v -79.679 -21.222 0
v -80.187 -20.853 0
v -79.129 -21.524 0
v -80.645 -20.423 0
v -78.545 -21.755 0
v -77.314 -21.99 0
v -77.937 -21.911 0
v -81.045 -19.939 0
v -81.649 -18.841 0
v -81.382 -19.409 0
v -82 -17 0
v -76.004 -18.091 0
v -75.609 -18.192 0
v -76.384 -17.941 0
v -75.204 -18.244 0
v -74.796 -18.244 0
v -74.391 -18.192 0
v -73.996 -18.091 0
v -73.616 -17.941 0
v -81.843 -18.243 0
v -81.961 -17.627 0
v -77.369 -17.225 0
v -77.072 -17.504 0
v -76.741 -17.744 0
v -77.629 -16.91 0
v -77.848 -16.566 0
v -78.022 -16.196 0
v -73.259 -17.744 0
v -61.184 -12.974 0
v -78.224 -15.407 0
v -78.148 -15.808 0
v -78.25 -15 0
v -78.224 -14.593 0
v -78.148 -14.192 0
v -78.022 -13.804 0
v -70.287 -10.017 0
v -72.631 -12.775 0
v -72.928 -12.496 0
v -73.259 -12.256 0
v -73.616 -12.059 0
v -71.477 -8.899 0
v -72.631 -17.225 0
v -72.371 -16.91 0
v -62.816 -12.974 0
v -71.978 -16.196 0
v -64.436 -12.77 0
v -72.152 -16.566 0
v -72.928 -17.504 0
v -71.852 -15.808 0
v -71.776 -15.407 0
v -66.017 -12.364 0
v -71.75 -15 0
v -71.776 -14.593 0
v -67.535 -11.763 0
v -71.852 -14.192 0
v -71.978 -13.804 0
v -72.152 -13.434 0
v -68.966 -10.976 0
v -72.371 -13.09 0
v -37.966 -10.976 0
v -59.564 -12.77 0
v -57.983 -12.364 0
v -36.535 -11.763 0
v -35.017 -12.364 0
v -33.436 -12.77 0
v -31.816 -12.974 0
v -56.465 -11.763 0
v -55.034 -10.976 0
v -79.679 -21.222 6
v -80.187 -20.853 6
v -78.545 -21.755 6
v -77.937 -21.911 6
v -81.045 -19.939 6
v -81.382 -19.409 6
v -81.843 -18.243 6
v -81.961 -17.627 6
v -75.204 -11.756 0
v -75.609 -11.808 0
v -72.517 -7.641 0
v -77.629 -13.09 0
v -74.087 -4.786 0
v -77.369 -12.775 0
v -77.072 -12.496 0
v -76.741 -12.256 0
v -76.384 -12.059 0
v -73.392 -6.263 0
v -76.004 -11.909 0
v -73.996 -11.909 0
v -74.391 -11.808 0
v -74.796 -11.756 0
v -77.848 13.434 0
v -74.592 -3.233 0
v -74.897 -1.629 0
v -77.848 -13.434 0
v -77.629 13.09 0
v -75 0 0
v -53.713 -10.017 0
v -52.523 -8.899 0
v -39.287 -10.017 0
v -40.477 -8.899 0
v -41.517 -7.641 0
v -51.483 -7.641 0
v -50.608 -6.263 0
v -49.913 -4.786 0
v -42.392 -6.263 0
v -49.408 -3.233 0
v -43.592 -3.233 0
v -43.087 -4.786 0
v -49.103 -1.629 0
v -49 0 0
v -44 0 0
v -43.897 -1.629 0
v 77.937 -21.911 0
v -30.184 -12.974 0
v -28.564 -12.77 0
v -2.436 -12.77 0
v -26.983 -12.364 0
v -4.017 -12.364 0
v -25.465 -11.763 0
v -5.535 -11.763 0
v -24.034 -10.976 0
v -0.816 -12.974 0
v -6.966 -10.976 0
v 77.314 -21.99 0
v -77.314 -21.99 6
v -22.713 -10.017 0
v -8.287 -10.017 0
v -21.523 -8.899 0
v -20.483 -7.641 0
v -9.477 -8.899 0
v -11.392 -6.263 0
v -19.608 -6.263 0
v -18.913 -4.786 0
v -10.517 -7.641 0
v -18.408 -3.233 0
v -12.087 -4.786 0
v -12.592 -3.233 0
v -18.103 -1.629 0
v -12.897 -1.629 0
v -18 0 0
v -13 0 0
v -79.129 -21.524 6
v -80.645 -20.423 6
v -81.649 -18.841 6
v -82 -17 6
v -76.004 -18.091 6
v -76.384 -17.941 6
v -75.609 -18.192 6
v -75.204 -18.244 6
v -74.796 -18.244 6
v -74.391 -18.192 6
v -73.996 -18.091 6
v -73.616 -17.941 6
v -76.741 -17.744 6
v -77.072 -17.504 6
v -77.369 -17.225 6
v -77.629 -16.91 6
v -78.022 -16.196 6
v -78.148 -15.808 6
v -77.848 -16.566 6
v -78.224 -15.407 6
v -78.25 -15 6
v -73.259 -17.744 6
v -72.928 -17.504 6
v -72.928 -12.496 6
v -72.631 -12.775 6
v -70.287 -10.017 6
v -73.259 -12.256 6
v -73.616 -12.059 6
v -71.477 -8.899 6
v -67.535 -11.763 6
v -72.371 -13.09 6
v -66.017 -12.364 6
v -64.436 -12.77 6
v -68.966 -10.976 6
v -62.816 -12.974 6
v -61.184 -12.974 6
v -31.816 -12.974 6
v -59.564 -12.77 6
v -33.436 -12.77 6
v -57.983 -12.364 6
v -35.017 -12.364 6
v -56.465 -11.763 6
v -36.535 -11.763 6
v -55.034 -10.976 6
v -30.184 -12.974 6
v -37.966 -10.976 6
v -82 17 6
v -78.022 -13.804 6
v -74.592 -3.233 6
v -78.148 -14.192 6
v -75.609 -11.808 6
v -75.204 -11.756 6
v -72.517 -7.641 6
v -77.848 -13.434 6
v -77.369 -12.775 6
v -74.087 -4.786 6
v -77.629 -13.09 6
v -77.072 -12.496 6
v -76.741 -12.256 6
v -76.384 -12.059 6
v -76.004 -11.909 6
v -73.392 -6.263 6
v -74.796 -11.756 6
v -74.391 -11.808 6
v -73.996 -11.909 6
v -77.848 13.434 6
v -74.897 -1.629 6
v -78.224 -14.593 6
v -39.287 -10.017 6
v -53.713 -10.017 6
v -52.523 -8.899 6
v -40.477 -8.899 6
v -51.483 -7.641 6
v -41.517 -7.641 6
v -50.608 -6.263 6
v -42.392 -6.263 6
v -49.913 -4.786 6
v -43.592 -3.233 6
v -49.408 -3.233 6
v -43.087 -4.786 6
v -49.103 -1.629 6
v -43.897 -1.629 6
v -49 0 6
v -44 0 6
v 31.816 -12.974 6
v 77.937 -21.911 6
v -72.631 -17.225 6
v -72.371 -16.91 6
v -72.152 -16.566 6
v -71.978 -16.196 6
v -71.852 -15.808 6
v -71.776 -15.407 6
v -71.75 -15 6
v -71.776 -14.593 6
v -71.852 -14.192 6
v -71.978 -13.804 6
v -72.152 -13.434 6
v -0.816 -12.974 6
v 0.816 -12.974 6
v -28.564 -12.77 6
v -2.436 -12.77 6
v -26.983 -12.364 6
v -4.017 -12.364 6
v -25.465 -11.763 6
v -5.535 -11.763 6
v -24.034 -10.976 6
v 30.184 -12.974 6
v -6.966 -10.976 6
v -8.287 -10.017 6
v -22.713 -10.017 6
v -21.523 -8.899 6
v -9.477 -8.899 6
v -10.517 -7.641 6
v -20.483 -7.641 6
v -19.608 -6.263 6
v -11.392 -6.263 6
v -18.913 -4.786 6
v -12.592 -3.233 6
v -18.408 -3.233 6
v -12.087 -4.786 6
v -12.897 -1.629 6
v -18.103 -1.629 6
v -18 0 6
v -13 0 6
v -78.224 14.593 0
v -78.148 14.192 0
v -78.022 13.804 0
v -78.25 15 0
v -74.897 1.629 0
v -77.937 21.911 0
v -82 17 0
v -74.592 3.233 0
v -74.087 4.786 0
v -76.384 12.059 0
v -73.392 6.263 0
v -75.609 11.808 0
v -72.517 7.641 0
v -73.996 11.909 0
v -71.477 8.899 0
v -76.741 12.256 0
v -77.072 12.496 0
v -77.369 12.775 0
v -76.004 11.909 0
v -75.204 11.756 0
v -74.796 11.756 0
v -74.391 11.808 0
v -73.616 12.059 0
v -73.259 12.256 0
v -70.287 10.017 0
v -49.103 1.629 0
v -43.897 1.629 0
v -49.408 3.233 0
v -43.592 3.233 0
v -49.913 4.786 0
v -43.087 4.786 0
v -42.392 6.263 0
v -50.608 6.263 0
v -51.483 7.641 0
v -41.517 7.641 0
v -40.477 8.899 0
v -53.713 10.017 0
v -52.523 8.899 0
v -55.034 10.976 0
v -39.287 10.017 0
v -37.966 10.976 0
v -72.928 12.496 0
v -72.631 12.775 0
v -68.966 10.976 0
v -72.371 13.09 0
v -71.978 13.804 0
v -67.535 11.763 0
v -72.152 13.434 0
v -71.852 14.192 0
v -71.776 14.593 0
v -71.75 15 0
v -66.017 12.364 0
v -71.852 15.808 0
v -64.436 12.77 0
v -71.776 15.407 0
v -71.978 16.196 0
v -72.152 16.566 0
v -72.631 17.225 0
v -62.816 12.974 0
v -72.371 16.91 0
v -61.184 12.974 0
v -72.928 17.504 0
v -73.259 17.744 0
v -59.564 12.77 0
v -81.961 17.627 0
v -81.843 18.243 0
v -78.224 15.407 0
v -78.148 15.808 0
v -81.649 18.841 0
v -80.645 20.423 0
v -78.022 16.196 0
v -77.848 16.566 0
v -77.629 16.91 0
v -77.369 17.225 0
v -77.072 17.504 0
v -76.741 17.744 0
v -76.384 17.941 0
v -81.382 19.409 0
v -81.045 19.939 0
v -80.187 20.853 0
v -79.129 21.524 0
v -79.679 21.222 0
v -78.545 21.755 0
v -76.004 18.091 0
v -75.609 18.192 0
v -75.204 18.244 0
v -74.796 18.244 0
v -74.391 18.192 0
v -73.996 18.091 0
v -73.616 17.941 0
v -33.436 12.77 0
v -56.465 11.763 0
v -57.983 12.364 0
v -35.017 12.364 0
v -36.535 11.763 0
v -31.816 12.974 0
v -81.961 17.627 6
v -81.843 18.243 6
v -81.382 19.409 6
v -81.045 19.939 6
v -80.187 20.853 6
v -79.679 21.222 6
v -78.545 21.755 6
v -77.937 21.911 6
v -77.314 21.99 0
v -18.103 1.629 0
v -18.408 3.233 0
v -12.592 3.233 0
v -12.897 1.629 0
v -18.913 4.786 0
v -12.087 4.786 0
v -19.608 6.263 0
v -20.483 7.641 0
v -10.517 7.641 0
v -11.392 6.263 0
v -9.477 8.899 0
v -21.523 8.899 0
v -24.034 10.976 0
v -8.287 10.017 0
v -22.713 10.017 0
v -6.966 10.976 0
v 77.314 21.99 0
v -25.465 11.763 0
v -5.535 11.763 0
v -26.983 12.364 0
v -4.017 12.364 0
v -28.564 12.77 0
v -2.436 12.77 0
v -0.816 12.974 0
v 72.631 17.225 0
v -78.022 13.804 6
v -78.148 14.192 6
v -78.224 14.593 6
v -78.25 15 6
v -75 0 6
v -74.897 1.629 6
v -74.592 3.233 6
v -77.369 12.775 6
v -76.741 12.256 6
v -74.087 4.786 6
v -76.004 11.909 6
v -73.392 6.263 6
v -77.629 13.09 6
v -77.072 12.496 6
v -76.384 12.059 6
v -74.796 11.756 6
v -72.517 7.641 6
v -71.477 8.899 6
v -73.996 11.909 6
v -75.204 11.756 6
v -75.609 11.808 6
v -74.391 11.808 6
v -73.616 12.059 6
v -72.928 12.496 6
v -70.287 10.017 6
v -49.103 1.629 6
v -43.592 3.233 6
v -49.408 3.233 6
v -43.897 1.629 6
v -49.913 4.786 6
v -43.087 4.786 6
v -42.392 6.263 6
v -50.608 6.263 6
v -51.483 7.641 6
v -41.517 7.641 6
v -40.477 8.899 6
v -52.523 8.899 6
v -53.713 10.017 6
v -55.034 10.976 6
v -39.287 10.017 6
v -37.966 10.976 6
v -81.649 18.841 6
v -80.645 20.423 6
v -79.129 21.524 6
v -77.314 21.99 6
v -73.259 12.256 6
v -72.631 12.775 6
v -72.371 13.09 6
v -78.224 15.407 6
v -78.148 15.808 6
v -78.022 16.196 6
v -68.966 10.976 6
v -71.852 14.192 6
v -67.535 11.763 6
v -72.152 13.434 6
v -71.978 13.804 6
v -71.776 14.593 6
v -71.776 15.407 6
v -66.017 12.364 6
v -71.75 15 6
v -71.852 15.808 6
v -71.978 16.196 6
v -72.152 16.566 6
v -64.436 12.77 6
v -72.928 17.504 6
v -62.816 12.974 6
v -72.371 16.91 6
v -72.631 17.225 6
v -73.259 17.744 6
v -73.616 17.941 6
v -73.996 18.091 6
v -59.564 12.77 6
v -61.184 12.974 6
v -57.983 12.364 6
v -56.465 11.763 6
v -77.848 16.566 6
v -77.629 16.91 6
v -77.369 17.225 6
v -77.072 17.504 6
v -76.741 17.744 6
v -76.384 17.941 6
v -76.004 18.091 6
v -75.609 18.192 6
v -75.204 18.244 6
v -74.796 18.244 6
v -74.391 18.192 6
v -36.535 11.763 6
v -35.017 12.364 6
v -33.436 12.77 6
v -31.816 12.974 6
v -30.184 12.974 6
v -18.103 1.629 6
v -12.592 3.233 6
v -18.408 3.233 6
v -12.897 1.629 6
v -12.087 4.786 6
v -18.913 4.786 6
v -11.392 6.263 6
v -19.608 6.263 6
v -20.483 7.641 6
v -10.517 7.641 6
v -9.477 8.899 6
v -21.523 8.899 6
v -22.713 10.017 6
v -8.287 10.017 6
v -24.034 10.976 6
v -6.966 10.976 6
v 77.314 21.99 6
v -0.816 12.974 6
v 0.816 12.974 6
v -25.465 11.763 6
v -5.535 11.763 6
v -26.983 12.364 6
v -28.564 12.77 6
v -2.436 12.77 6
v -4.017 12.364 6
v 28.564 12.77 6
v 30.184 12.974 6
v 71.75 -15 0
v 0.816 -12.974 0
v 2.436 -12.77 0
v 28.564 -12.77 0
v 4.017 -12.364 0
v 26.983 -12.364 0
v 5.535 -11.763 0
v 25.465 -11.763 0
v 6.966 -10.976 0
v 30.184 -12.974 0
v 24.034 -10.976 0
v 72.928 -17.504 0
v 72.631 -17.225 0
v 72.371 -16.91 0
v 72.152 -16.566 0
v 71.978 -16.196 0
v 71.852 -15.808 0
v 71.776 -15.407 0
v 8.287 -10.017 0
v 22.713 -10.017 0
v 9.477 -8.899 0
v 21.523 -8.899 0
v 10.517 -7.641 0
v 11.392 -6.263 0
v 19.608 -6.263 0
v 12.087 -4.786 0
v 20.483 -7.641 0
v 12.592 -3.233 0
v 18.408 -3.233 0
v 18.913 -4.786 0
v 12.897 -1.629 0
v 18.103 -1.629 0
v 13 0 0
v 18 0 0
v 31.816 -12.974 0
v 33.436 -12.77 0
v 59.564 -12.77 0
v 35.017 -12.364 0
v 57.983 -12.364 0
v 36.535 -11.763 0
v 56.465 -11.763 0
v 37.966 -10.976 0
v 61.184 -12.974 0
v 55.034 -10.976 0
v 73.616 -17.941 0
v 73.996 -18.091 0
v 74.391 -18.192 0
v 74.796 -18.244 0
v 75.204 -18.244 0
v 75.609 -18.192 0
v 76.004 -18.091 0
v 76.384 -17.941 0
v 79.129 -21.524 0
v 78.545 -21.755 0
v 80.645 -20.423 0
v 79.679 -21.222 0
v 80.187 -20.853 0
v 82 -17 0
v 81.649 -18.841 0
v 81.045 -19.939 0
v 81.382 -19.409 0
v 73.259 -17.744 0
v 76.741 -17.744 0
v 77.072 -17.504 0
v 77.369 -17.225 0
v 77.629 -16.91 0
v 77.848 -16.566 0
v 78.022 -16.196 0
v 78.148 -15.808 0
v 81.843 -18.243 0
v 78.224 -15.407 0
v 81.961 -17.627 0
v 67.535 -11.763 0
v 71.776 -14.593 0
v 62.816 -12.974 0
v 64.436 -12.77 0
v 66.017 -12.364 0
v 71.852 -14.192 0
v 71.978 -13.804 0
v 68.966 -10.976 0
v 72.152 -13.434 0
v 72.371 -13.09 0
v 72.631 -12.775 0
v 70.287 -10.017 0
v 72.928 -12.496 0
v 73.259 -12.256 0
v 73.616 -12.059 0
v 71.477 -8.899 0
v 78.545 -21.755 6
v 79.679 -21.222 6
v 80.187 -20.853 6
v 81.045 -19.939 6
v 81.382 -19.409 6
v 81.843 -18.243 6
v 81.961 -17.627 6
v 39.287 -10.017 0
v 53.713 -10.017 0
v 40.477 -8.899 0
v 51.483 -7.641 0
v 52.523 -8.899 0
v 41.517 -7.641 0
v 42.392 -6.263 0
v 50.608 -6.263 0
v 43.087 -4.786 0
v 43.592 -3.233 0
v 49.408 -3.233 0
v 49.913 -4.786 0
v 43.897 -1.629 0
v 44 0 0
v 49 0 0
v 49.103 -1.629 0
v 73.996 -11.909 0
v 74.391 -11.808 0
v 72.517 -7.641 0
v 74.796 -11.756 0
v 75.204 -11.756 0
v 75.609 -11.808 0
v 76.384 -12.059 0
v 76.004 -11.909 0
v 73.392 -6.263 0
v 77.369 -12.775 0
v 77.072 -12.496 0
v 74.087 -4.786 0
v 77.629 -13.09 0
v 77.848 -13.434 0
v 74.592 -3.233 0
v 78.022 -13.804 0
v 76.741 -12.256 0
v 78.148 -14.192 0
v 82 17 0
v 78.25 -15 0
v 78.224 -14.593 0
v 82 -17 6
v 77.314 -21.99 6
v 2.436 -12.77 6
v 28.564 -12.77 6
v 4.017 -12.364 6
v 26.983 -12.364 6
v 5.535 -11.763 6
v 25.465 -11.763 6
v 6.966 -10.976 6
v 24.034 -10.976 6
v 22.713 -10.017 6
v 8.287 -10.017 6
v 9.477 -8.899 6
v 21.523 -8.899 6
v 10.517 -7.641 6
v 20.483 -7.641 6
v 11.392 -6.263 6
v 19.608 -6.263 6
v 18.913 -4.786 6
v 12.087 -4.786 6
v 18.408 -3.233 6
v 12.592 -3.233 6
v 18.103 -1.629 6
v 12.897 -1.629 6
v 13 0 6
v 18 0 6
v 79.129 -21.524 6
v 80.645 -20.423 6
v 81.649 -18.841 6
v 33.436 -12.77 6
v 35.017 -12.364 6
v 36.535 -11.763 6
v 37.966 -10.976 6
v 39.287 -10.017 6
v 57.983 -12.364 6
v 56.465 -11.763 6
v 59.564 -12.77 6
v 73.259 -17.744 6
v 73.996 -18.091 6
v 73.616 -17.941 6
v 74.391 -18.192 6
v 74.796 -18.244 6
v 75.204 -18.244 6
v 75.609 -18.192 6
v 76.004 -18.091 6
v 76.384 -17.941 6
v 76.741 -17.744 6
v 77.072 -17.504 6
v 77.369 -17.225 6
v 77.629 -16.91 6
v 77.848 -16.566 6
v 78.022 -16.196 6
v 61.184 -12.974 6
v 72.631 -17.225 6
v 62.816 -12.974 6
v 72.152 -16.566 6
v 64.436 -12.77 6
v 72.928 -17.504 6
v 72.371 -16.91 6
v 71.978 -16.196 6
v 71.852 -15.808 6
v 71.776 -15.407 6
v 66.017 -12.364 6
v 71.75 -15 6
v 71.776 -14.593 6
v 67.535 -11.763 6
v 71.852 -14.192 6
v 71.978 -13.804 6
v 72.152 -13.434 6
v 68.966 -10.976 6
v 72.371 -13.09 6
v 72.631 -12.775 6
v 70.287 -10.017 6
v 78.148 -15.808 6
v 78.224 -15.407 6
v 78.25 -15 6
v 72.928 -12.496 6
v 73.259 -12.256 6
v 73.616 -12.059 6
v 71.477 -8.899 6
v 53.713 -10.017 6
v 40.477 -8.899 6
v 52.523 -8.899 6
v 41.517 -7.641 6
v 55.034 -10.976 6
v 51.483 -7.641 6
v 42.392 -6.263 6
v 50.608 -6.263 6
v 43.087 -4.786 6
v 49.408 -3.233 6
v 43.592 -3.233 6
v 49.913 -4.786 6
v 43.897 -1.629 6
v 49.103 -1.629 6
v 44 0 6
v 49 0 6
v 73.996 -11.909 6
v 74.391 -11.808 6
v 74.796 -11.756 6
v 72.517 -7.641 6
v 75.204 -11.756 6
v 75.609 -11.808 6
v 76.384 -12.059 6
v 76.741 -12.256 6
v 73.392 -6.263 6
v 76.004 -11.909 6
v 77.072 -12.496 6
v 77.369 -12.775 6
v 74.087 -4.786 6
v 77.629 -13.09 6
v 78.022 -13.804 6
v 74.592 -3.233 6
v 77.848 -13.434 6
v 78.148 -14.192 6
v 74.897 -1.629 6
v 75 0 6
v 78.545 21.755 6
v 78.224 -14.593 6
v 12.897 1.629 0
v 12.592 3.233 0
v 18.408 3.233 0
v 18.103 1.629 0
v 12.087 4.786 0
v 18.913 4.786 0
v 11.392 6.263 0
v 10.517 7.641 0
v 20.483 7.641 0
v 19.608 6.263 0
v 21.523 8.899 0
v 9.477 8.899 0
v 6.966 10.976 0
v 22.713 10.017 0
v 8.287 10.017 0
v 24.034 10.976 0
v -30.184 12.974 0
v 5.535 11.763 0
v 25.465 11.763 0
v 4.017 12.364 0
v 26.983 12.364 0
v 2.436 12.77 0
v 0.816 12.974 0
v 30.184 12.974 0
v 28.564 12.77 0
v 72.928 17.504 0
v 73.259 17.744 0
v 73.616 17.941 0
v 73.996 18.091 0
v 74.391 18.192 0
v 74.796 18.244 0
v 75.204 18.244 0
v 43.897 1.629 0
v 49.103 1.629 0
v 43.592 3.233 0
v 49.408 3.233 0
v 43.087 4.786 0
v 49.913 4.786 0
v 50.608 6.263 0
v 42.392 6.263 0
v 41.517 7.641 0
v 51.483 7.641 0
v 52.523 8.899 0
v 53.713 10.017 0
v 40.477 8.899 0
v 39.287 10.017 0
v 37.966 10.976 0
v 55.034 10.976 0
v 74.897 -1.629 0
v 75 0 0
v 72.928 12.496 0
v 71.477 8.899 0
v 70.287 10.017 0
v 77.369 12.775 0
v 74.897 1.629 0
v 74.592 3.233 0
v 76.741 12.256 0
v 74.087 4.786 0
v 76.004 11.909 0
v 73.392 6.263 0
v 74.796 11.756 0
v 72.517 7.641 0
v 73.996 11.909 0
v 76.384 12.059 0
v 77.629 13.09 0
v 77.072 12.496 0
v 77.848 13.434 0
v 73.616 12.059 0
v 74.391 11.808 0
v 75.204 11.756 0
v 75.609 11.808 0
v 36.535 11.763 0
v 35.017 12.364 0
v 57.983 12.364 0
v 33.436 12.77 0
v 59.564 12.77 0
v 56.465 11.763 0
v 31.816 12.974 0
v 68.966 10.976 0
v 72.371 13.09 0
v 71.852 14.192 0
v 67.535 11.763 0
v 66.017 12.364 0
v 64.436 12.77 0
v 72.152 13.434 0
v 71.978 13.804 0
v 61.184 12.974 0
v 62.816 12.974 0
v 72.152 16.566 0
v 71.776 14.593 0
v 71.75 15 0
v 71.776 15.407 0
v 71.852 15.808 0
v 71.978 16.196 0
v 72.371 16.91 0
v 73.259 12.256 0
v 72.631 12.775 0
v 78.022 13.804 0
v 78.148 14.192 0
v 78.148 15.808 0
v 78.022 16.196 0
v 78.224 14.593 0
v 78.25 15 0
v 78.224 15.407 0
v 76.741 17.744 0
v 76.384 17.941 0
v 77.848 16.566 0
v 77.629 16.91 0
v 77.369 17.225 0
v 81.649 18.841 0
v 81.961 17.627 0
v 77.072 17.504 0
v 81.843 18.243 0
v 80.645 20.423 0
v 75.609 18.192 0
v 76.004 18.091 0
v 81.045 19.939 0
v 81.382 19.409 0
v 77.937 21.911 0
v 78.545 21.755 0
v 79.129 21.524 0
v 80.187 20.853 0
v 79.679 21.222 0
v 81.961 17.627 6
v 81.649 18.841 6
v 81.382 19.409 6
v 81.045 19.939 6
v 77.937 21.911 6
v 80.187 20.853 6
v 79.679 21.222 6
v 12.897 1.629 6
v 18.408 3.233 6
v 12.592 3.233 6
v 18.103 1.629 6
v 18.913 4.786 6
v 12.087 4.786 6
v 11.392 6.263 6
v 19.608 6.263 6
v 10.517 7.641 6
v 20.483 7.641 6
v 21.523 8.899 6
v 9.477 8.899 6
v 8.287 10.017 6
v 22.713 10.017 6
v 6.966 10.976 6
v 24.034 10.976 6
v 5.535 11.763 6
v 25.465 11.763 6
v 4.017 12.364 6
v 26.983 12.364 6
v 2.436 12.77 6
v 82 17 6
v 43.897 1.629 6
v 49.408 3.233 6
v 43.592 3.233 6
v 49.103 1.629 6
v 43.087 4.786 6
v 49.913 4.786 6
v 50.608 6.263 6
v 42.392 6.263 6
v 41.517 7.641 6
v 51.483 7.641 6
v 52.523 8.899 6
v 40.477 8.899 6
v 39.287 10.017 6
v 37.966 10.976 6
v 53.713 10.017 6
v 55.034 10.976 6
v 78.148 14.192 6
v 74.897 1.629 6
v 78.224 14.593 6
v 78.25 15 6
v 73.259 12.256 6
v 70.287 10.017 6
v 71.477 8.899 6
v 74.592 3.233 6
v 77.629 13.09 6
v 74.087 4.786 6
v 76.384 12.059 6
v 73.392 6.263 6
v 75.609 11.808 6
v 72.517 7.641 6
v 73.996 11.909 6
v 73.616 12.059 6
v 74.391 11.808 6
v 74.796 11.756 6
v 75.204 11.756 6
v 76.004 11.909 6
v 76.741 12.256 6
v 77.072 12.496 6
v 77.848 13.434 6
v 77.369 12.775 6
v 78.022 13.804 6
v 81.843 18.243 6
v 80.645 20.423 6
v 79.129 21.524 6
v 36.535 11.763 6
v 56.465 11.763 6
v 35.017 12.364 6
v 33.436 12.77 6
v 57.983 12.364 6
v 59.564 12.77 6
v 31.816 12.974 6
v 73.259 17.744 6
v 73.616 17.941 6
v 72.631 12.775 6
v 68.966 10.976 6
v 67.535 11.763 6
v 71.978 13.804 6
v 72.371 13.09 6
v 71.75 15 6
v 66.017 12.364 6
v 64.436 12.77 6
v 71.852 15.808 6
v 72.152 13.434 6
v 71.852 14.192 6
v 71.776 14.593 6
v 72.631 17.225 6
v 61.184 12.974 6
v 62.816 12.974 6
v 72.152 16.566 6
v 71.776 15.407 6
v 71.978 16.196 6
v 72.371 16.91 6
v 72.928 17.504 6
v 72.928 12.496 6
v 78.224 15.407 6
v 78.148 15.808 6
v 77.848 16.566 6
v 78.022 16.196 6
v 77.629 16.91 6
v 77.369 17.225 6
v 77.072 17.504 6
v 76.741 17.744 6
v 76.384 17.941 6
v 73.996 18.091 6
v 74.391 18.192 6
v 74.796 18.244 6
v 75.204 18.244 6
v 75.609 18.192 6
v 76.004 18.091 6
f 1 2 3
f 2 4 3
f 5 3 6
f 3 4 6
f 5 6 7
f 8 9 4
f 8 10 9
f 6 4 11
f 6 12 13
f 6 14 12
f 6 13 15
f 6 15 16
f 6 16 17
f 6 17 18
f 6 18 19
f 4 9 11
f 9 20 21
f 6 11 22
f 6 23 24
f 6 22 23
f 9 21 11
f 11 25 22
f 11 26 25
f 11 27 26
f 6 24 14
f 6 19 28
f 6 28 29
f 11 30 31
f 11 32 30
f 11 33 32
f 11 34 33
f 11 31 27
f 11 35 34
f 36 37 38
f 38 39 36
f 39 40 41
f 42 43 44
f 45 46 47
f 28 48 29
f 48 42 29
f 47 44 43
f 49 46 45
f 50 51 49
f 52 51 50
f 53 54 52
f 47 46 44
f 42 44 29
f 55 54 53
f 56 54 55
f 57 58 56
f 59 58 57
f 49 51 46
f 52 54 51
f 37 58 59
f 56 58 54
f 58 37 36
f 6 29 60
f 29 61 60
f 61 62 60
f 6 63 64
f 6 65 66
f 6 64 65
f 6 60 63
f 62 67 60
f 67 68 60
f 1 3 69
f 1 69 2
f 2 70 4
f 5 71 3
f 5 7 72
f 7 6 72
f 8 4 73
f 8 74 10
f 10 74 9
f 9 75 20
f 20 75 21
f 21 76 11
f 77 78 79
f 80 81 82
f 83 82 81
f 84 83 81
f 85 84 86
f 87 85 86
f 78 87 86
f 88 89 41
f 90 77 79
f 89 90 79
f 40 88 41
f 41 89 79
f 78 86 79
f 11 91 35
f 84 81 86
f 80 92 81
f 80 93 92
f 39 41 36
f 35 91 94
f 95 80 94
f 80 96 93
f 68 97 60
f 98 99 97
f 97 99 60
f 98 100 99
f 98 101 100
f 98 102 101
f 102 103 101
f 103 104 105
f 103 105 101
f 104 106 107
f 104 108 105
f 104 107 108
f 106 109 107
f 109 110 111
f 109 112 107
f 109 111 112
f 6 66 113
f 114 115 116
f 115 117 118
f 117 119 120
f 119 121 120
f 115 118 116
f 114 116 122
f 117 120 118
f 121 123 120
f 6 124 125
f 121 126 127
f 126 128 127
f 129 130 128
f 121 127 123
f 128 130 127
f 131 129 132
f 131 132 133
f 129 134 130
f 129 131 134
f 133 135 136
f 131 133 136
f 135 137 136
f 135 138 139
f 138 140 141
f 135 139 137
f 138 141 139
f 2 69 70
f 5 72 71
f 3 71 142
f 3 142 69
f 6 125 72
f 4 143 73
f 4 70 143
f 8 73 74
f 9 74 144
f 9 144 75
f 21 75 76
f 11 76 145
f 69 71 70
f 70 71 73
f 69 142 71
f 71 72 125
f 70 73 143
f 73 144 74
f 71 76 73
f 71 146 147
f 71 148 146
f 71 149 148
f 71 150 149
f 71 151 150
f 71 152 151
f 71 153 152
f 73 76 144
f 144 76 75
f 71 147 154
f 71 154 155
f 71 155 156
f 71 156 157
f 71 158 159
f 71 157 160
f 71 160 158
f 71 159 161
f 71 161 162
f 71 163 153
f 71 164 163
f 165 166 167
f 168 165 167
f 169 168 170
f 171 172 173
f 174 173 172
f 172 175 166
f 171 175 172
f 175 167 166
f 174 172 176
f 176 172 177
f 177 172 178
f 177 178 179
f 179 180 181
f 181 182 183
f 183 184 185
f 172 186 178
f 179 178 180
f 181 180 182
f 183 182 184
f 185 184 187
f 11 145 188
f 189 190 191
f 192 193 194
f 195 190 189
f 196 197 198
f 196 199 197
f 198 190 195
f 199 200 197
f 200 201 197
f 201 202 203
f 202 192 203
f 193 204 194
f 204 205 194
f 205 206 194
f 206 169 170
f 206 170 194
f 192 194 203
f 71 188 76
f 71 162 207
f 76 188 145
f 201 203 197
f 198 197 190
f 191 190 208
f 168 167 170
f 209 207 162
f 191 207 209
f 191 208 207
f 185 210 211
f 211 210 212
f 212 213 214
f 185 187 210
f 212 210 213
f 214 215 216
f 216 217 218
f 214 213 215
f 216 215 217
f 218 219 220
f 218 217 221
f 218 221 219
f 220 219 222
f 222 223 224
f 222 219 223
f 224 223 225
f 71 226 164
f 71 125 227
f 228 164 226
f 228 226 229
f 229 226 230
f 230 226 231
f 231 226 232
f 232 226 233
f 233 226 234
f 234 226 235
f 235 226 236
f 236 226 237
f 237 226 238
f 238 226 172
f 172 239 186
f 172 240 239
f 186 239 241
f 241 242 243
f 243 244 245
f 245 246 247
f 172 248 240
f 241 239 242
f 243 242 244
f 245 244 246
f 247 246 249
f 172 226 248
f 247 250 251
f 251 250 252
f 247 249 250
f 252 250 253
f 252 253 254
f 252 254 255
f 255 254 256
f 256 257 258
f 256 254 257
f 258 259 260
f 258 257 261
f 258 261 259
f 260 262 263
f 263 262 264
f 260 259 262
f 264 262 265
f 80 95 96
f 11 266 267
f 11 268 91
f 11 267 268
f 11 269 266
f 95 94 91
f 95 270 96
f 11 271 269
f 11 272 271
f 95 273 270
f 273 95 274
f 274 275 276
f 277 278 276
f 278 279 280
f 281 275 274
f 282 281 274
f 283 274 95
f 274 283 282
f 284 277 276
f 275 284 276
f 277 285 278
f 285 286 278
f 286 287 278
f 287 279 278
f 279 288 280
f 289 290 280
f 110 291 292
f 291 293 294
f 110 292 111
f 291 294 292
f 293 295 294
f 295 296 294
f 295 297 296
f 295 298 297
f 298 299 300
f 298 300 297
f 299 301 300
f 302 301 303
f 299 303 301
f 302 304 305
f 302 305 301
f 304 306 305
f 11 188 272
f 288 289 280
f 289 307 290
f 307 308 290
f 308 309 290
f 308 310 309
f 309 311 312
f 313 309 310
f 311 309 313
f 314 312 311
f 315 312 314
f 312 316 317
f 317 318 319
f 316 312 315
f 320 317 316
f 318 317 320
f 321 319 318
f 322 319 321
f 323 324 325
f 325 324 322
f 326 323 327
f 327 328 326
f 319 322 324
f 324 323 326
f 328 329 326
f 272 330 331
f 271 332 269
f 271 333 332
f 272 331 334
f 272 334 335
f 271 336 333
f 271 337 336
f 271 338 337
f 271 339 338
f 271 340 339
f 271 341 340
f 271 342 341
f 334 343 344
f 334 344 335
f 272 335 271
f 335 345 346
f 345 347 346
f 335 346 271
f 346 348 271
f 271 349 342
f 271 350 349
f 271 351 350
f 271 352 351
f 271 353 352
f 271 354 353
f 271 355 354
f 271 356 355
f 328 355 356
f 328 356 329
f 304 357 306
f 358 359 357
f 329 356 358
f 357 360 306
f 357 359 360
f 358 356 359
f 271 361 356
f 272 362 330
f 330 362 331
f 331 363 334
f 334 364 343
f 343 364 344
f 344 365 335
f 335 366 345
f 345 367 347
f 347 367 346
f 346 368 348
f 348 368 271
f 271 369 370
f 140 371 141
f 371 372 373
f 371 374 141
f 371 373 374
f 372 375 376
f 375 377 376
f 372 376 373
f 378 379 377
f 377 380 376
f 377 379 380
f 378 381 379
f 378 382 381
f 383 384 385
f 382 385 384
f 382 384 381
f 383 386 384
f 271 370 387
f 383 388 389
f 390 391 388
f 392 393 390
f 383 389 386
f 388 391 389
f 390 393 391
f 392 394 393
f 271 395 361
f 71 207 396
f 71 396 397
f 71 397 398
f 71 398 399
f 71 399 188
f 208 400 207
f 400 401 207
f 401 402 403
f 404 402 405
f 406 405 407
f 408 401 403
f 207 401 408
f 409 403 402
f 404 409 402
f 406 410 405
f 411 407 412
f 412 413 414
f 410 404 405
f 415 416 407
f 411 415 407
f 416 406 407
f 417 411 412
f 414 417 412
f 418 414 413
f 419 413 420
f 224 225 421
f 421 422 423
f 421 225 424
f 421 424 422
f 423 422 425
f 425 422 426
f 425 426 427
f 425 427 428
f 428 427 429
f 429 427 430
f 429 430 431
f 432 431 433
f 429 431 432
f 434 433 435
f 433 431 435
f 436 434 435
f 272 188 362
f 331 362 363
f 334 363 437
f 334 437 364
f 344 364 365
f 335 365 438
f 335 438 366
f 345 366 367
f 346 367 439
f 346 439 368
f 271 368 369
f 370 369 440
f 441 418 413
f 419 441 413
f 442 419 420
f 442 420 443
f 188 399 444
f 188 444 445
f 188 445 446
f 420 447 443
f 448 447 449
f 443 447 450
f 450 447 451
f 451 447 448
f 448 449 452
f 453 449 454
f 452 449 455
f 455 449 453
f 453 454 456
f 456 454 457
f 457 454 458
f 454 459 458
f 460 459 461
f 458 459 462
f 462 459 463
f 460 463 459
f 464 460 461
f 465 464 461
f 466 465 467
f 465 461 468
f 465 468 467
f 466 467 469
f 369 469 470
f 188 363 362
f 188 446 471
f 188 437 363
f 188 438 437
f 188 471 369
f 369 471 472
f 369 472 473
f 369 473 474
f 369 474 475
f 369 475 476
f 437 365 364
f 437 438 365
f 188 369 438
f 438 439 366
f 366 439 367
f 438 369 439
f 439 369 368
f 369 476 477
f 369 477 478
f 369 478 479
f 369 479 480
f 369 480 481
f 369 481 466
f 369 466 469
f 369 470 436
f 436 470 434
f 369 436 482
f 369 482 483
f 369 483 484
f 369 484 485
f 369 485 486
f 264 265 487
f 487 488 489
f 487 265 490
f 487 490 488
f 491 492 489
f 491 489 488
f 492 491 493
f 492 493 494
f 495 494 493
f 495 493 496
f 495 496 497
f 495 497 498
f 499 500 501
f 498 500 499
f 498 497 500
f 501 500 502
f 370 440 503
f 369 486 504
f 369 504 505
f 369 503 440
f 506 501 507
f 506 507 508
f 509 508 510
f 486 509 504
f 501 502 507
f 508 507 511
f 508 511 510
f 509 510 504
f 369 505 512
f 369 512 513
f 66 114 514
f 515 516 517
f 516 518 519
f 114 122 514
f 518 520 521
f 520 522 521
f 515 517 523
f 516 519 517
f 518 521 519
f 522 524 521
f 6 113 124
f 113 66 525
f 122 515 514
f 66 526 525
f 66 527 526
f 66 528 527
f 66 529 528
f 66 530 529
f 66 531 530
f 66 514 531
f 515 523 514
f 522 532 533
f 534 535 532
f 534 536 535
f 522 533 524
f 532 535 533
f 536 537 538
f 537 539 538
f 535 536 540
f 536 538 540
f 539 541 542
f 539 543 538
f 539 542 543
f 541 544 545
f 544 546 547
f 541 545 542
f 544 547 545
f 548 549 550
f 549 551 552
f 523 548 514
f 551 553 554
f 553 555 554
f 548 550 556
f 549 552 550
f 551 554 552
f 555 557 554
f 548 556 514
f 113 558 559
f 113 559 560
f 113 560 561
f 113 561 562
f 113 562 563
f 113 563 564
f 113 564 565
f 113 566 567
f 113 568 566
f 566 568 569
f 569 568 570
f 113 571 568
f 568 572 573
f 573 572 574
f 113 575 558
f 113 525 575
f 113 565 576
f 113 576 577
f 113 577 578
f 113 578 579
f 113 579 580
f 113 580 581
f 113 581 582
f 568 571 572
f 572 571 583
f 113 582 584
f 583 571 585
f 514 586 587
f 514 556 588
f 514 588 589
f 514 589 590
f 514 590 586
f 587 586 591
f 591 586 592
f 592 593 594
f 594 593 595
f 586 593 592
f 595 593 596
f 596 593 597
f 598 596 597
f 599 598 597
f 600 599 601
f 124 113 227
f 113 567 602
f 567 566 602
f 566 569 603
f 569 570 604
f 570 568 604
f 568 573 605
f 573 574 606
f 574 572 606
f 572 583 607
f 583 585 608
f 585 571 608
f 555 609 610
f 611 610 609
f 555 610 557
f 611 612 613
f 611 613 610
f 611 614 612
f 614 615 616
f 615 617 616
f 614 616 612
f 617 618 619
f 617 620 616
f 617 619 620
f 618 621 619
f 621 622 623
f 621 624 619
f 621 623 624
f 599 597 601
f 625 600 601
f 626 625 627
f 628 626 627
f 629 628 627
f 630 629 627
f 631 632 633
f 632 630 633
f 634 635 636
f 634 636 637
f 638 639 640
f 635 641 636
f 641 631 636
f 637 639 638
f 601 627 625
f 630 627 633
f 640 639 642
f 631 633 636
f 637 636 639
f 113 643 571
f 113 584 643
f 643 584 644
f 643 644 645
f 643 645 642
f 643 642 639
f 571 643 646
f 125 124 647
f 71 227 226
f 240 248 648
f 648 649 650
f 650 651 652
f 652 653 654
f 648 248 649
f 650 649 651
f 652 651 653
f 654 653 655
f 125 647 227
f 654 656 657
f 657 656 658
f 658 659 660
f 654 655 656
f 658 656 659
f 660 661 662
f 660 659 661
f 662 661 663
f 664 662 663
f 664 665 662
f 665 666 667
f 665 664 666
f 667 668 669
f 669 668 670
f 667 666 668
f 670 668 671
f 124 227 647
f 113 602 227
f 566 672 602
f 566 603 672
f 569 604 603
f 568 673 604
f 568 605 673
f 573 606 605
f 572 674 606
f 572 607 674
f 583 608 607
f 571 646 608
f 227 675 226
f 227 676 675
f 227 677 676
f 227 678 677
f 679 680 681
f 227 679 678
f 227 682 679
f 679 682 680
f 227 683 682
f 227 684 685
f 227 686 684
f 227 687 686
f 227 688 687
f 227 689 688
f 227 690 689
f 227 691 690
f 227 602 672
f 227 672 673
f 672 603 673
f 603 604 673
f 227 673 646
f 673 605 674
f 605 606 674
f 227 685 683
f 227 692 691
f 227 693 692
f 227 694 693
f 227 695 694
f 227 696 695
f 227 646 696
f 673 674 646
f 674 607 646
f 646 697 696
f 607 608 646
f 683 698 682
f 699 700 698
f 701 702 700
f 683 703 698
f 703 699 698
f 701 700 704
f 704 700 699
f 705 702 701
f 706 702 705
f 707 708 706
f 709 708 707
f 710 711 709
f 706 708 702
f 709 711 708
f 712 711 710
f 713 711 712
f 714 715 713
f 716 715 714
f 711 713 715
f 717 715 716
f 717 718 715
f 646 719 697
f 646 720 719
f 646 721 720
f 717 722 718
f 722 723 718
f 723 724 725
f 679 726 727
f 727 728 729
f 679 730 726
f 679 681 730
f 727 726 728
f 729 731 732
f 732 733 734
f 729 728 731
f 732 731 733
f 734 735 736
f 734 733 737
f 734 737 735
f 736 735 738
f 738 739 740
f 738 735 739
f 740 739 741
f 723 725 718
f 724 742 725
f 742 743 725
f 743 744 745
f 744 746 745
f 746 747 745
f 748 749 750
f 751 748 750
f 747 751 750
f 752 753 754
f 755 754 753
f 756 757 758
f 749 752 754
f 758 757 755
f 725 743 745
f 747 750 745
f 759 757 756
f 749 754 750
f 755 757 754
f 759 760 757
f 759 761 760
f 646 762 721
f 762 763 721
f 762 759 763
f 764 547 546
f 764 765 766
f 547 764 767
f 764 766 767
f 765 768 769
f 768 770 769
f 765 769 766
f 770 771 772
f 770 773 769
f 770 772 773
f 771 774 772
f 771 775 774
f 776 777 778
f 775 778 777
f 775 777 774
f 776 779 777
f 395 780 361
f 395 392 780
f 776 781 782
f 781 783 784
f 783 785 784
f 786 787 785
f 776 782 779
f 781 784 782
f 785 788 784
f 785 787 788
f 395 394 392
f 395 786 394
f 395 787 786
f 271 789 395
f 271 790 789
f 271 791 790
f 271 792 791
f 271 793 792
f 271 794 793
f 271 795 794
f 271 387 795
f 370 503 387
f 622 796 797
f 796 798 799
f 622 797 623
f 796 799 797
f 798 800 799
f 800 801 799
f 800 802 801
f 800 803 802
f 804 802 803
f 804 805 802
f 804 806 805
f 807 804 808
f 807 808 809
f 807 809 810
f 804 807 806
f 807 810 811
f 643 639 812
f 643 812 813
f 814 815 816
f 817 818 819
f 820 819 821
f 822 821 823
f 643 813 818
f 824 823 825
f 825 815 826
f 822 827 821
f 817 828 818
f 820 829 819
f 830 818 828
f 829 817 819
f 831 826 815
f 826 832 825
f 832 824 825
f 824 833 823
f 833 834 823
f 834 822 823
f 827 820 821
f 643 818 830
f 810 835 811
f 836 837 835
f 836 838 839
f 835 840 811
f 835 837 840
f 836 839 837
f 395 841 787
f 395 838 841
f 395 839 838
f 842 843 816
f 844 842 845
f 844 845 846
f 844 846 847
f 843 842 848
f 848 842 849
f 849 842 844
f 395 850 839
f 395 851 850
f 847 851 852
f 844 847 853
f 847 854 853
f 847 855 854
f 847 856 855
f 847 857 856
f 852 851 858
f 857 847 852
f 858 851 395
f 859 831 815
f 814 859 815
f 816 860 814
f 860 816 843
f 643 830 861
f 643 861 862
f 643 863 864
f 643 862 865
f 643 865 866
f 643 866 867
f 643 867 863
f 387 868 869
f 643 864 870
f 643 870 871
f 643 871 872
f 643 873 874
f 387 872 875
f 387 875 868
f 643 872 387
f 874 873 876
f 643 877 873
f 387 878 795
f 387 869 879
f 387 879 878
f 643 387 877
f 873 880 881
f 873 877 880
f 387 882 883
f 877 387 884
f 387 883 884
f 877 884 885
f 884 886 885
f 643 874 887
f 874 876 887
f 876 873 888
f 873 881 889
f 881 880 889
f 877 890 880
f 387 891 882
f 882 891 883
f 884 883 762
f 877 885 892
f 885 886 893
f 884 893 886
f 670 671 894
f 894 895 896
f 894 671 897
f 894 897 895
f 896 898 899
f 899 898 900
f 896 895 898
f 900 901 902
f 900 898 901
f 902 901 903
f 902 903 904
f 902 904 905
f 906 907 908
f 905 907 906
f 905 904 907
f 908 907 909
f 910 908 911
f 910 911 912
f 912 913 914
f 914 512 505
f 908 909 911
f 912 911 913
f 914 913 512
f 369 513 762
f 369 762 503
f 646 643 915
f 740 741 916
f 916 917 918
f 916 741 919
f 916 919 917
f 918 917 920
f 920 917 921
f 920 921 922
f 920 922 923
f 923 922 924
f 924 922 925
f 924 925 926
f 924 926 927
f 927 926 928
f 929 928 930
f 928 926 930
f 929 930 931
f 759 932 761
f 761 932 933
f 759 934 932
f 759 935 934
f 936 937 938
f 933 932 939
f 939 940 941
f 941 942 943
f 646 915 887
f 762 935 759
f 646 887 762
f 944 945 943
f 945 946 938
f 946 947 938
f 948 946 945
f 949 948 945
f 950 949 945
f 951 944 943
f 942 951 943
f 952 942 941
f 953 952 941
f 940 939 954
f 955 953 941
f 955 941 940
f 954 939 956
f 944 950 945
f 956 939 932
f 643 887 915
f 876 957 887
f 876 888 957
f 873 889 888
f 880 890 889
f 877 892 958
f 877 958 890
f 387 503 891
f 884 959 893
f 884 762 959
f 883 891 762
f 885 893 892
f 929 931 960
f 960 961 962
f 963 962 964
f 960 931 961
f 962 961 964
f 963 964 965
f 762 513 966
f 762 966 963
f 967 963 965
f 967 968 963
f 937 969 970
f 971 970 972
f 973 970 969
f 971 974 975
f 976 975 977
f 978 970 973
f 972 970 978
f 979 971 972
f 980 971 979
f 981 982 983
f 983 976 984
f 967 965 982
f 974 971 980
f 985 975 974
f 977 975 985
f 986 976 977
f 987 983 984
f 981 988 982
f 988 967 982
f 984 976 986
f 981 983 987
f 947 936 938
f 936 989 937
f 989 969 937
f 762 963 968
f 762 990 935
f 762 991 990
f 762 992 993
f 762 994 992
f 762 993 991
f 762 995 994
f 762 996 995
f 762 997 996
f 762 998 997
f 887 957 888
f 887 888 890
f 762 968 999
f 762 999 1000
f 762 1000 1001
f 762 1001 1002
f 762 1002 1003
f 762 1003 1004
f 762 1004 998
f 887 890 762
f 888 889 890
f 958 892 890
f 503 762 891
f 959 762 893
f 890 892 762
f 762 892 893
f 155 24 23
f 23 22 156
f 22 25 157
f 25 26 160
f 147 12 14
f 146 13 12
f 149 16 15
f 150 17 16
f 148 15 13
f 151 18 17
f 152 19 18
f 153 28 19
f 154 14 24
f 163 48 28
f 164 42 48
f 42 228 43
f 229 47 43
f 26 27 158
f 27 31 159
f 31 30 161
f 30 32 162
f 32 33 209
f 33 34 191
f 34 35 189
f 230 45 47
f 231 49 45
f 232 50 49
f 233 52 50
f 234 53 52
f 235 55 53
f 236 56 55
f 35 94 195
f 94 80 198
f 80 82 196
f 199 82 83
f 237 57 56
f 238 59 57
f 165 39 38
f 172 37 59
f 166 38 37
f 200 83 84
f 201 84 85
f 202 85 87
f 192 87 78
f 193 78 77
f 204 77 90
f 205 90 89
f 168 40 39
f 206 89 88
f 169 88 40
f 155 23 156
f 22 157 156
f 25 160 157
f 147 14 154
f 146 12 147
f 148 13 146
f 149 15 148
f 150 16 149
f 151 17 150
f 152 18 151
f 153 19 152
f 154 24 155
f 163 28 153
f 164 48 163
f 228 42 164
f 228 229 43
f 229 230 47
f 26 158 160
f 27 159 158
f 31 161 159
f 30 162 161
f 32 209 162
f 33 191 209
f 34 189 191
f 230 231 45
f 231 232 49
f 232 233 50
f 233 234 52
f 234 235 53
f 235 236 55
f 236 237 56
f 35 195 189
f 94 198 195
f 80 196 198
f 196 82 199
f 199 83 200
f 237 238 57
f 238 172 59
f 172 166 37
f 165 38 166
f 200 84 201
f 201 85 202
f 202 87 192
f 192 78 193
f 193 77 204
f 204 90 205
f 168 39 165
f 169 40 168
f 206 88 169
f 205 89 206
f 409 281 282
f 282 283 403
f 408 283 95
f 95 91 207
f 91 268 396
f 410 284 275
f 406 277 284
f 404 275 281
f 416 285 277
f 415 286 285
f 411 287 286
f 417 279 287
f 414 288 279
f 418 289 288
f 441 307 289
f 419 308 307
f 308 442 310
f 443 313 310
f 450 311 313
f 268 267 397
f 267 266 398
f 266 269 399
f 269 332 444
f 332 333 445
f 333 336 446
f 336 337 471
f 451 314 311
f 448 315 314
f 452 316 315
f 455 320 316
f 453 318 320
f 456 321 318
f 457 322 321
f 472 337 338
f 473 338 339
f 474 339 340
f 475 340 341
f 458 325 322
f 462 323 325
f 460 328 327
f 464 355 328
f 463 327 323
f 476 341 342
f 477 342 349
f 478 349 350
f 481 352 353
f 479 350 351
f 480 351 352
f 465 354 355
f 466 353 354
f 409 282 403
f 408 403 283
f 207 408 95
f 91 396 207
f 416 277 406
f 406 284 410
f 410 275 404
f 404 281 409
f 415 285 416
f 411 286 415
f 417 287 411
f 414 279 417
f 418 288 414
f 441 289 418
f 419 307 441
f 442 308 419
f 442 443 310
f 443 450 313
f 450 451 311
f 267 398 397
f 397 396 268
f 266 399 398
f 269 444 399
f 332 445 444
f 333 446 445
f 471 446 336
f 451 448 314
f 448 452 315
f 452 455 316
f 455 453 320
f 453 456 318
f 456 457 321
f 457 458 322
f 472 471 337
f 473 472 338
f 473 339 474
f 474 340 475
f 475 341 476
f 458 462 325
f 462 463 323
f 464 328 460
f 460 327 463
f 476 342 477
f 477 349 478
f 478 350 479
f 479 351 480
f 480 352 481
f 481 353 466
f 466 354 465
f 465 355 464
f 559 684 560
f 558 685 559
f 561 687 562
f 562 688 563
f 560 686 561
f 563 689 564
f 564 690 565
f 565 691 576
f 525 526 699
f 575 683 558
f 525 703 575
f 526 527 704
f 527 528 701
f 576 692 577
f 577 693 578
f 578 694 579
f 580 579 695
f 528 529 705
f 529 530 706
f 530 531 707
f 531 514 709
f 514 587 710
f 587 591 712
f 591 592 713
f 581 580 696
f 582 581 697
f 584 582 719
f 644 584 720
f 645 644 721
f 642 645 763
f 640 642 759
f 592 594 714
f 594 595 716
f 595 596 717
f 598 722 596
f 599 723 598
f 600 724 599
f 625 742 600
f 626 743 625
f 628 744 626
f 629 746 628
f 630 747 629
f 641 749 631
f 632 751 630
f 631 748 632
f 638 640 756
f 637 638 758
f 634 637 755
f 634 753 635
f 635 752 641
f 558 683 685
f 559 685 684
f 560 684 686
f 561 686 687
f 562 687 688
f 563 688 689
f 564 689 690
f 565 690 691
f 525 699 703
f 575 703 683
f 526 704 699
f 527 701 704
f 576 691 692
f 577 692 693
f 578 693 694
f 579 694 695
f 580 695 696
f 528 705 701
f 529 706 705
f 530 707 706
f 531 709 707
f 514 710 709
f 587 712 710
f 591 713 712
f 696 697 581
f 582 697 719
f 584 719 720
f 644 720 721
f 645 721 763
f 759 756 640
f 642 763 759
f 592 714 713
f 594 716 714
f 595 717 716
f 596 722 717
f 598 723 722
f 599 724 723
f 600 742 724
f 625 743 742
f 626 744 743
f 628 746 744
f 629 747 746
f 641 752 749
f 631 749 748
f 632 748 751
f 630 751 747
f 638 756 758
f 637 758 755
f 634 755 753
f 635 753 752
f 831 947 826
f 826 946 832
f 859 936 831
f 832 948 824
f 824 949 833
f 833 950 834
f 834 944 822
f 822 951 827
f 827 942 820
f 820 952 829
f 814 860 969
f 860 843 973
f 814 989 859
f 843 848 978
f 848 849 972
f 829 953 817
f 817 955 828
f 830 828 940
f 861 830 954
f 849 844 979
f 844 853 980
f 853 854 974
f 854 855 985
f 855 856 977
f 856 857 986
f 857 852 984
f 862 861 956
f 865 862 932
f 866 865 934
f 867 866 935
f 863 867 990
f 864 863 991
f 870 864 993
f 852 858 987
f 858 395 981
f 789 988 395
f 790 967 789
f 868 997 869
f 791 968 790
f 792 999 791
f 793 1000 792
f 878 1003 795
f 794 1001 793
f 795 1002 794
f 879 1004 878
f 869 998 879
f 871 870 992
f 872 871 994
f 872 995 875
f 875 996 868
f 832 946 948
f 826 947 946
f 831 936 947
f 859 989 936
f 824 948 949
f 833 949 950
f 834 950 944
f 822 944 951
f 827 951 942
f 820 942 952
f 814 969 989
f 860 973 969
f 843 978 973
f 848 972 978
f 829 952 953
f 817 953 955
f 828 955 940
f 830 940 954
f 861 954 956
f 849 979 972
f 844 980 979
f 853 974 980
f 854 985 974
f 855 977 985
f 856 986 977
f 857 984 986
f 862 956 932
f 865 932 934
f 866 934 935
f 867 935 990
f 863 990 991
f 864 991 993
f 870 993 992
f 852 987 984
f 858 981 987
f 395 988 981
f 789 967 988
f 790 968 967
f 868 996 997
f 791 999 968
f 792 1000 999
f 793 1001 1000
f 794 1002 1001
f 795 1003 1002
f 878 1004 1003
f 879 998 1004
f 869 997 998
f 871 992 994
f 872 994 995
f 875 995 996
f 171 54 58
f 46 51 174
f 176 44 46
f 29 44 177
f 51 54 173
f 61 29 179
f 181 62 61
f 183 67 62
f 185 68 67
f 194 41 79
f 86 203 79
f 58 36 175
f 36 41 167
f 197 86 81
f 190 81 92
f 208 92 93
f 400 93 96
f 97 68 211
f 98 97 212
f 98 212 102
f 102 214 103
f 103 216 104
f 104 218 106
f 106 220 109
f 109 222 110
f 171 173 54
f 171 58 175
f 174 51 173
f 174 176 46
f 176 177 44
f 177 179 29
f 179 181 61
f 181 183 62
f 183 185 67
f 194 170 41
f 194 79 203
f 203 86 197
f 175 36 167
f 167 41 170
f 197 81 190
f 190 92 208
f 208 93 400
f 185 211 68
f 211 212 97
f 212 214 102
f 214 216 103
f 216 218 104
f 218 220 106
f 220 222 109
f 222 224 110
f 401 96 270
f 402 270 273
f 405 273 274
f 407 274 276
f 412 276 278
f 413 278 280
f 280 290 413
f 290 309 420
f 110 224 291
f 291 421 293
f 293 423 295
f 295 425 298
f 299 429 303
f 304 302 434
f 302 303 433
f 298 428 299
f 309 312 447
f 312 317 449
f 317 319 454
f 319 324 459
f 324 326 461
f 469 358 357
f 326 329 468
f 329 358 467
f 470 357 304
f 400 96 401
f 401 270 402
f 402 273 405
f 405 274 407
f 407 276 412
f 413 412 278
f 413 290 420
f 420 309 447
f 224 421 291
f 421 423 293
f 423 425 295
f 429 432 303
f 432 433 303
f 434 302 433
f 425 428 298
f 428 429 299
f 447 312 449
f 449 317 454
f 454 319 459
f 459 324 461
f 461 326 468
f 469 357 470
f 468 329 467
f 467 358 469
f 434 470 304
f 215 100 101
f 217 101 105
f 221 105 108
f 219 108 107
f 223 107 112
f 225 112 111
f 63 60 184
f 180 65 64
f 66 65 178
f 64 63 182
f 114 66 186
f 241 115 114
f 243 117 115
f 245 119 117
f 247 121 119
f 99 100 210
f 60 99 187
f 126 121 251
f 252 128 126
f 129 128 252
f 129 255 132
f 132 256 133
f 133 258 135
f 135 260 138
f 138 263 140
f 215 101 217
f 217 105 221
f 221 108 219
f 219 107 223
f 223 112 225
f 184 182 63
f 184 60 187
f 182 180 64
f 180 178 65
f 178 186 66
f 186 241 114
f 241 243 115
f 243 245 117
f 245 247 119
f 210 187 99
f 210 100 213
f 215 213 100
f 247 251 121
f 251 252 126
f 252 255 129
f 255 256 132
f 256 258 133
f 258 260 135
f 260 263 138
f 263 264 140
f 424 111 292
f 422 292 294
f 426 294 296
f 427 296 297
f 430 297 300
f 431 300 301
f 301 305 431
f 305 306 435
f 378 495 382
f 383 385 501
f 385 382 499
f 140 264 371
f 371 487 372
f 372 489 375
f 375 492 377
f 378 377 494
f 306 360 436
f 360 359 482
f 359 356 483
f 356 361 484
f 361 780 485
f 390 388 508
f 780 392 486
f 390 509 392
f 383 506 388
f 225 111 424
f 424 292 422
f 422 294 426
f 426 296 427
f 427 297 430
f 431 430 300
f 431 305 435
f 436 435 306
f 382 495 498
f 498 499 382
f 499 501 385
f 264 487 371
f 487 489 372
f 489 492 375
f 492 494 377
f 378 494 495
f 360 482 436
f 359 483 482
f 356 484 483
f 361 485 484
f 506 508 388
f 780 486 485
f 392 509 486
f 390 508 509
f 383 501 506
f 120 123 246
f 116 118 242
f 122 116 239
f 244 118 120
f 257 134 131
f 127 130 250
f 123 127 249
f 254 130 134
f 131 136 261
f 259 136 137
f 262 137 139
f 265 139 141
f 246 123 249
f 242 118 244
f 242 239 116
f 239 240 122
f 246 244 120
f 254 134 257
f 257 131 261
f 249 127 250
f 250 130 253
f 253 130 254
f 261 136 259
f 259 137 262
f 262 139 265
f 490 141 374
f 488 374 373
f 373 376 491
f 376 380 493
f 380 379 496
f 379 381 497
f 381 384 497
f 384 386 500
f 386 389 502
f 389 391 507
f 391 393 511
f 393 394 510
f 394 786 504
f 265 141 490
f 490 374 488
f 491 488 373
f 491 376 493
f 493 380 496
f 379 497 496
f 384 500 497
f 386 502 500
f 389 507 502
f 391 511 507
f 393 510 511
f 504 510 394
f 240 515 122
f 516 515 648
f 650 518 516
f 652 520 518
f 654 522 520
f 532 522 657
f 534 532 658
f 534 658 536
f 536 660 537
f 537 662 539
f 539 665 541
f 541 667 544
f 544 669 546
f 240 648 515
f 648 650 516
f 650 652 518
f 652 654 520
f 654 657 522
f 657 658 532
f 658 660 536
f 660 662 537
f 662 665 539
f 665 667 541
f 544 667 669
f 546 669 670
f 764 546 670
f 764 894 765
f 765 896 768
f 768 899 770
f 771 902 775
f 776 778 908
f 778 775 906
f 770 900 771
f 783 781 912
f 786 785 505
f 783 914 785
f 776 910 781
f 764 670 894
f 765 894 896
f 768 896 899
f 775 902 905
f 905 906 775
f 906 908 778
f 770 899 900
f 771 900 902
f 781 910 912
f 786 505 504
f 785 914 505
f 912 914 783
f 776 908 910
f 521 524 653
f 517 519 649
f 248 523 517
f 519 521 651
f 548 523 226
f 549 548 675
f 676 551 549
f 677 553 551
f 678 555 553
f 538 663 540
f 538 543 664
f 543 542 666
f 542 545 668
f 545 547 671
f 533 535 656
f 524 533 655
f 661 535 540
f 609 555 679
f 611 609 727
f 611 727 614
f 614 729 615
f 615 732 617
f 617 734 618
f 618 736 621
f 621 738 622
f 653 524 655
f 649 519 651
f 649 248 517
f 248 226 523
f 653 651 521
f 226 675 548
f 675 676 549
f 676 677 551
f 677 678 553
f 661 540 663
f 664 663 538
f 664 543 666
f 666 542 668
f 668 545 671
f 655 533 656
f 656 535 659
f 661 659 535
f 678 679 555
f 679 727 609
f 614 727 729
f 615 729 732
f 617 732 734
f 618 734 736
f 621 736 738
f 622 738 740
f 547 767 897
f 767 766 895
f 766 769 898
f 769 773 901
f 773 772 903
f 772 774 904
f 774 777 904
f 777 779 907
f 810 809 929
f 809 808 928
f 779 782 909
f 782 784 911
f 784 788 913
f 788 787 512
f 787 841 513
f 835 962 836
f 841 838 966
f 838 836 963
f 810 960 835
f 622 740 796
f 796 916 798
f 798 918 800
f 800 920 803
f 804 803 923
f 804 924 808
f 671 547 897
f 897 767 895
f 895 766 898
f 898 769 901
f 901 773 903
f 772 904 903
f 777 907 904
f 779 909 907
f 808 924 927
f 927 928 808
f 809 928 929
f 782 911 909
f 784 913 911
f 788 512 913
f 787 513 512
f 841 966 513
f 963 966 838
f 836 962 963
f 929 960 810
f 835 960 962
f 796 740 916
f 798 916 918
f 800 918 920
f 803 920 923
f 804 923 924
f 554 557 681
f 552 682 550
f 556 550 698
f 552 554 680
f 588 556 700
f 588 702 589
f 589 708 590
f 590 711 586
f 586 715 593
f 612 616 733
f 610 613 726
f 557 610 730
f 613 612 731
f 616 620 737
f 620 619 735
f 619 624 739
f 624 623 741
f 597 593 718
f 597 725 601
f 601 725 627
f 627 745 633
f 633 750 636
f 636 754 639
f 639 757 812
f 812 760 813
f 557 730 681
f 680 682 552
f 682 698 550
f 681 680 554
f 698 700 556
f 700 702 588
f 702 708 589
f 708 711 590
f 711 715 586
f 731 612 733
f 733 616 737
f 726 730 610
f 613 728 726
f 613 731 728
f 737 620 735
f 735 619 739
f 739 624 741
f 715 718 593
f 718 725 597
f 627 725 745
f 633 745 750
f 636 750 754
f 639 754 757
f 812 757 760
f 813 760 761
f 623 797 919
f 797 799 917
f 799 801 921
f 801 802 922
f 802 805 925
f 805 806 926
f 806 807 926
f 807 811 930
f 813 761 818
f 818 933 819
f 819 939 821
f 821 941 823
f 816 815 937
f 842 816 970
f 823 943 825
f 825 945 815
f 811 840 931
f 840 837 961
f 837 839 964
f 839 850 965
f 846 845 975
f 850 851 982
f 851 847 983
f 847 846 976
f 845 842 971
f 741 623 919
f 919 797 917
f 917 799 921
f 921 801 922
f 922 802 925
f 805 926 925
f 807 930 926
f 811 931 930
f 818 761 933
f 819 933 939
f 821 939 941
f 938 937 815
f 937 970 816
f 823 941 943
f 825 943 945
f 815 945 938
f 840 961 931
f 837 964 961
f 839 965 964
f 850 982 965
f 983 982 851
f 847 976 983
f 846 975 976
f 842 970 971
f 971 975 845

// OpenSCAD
$fn = 50;

difference() {
	union() {
		hull() {
			translate(v = [-77.0, 17.0, 0]) {
				cylinder(h = 6, r = 5);
			}
			translate(v = [77.0, 17.0, 0]) {
				cylinder(h = 6, r = 5);
			}
			translate(v = [-77.0, -17.0, 0]) {
				cylinder(h = 6, r = 5);
			}
			translate(v = [77.0, -17.0, 0]) {
				cylinder(h = 6, r = 5);
			}
		}
	}
	union() {
		translate(v = [-75.0, -15.0, -100.0]) {
			cylinder(h = 200, r = 3.25);
		}
		translate(v = [-75.0, 15.0, -100.0]) {
			cylinder(h = 200, r = 3.25);
		}
		translate(v = [75.0, -15.0, -100.0]) {
			cylinder(h = 200, r = 3.25);
		}
		translate(v = [75.0, 15.0, -100.0]) {
			cylinder(h = 200, r = 3.25);
		}
		translate(v = [-75.0, -15.0, -100.0]) {
			cylinder(h = 200, r = 1.8);
		}
		translate(v = [-75.0, 15.0, -100.0]) {
			cylinder(h = 200, r = 1.8);
		}
		translate(v = [75.0, -15.0, -100.0]) {
			cylinder(h = 200, r = 1.8);
		}
		translate(v = [75.0, 15.0, -100.0]) {
			cylinder(h = 200, r = 1.8);
		}
		translate(v = [-62.0, 0, 0.0]) {
			cylinder(h = 6, r = 13.0);
		}
		translate(v = [-31.0, 0, 0.0]) {
			cylinder(h = 6, r = 13.0);
		}
		cylinder(h = 6, r = 13.0);
		translate(v = [31.0, 0, 0.0]) {
			cylinder(h = 6, r = 13.0);
		}
		translate(v = [62.0, 0, 0.0]) {
			cylinder(h = 6, r = 13.0);
		}
	}
}
